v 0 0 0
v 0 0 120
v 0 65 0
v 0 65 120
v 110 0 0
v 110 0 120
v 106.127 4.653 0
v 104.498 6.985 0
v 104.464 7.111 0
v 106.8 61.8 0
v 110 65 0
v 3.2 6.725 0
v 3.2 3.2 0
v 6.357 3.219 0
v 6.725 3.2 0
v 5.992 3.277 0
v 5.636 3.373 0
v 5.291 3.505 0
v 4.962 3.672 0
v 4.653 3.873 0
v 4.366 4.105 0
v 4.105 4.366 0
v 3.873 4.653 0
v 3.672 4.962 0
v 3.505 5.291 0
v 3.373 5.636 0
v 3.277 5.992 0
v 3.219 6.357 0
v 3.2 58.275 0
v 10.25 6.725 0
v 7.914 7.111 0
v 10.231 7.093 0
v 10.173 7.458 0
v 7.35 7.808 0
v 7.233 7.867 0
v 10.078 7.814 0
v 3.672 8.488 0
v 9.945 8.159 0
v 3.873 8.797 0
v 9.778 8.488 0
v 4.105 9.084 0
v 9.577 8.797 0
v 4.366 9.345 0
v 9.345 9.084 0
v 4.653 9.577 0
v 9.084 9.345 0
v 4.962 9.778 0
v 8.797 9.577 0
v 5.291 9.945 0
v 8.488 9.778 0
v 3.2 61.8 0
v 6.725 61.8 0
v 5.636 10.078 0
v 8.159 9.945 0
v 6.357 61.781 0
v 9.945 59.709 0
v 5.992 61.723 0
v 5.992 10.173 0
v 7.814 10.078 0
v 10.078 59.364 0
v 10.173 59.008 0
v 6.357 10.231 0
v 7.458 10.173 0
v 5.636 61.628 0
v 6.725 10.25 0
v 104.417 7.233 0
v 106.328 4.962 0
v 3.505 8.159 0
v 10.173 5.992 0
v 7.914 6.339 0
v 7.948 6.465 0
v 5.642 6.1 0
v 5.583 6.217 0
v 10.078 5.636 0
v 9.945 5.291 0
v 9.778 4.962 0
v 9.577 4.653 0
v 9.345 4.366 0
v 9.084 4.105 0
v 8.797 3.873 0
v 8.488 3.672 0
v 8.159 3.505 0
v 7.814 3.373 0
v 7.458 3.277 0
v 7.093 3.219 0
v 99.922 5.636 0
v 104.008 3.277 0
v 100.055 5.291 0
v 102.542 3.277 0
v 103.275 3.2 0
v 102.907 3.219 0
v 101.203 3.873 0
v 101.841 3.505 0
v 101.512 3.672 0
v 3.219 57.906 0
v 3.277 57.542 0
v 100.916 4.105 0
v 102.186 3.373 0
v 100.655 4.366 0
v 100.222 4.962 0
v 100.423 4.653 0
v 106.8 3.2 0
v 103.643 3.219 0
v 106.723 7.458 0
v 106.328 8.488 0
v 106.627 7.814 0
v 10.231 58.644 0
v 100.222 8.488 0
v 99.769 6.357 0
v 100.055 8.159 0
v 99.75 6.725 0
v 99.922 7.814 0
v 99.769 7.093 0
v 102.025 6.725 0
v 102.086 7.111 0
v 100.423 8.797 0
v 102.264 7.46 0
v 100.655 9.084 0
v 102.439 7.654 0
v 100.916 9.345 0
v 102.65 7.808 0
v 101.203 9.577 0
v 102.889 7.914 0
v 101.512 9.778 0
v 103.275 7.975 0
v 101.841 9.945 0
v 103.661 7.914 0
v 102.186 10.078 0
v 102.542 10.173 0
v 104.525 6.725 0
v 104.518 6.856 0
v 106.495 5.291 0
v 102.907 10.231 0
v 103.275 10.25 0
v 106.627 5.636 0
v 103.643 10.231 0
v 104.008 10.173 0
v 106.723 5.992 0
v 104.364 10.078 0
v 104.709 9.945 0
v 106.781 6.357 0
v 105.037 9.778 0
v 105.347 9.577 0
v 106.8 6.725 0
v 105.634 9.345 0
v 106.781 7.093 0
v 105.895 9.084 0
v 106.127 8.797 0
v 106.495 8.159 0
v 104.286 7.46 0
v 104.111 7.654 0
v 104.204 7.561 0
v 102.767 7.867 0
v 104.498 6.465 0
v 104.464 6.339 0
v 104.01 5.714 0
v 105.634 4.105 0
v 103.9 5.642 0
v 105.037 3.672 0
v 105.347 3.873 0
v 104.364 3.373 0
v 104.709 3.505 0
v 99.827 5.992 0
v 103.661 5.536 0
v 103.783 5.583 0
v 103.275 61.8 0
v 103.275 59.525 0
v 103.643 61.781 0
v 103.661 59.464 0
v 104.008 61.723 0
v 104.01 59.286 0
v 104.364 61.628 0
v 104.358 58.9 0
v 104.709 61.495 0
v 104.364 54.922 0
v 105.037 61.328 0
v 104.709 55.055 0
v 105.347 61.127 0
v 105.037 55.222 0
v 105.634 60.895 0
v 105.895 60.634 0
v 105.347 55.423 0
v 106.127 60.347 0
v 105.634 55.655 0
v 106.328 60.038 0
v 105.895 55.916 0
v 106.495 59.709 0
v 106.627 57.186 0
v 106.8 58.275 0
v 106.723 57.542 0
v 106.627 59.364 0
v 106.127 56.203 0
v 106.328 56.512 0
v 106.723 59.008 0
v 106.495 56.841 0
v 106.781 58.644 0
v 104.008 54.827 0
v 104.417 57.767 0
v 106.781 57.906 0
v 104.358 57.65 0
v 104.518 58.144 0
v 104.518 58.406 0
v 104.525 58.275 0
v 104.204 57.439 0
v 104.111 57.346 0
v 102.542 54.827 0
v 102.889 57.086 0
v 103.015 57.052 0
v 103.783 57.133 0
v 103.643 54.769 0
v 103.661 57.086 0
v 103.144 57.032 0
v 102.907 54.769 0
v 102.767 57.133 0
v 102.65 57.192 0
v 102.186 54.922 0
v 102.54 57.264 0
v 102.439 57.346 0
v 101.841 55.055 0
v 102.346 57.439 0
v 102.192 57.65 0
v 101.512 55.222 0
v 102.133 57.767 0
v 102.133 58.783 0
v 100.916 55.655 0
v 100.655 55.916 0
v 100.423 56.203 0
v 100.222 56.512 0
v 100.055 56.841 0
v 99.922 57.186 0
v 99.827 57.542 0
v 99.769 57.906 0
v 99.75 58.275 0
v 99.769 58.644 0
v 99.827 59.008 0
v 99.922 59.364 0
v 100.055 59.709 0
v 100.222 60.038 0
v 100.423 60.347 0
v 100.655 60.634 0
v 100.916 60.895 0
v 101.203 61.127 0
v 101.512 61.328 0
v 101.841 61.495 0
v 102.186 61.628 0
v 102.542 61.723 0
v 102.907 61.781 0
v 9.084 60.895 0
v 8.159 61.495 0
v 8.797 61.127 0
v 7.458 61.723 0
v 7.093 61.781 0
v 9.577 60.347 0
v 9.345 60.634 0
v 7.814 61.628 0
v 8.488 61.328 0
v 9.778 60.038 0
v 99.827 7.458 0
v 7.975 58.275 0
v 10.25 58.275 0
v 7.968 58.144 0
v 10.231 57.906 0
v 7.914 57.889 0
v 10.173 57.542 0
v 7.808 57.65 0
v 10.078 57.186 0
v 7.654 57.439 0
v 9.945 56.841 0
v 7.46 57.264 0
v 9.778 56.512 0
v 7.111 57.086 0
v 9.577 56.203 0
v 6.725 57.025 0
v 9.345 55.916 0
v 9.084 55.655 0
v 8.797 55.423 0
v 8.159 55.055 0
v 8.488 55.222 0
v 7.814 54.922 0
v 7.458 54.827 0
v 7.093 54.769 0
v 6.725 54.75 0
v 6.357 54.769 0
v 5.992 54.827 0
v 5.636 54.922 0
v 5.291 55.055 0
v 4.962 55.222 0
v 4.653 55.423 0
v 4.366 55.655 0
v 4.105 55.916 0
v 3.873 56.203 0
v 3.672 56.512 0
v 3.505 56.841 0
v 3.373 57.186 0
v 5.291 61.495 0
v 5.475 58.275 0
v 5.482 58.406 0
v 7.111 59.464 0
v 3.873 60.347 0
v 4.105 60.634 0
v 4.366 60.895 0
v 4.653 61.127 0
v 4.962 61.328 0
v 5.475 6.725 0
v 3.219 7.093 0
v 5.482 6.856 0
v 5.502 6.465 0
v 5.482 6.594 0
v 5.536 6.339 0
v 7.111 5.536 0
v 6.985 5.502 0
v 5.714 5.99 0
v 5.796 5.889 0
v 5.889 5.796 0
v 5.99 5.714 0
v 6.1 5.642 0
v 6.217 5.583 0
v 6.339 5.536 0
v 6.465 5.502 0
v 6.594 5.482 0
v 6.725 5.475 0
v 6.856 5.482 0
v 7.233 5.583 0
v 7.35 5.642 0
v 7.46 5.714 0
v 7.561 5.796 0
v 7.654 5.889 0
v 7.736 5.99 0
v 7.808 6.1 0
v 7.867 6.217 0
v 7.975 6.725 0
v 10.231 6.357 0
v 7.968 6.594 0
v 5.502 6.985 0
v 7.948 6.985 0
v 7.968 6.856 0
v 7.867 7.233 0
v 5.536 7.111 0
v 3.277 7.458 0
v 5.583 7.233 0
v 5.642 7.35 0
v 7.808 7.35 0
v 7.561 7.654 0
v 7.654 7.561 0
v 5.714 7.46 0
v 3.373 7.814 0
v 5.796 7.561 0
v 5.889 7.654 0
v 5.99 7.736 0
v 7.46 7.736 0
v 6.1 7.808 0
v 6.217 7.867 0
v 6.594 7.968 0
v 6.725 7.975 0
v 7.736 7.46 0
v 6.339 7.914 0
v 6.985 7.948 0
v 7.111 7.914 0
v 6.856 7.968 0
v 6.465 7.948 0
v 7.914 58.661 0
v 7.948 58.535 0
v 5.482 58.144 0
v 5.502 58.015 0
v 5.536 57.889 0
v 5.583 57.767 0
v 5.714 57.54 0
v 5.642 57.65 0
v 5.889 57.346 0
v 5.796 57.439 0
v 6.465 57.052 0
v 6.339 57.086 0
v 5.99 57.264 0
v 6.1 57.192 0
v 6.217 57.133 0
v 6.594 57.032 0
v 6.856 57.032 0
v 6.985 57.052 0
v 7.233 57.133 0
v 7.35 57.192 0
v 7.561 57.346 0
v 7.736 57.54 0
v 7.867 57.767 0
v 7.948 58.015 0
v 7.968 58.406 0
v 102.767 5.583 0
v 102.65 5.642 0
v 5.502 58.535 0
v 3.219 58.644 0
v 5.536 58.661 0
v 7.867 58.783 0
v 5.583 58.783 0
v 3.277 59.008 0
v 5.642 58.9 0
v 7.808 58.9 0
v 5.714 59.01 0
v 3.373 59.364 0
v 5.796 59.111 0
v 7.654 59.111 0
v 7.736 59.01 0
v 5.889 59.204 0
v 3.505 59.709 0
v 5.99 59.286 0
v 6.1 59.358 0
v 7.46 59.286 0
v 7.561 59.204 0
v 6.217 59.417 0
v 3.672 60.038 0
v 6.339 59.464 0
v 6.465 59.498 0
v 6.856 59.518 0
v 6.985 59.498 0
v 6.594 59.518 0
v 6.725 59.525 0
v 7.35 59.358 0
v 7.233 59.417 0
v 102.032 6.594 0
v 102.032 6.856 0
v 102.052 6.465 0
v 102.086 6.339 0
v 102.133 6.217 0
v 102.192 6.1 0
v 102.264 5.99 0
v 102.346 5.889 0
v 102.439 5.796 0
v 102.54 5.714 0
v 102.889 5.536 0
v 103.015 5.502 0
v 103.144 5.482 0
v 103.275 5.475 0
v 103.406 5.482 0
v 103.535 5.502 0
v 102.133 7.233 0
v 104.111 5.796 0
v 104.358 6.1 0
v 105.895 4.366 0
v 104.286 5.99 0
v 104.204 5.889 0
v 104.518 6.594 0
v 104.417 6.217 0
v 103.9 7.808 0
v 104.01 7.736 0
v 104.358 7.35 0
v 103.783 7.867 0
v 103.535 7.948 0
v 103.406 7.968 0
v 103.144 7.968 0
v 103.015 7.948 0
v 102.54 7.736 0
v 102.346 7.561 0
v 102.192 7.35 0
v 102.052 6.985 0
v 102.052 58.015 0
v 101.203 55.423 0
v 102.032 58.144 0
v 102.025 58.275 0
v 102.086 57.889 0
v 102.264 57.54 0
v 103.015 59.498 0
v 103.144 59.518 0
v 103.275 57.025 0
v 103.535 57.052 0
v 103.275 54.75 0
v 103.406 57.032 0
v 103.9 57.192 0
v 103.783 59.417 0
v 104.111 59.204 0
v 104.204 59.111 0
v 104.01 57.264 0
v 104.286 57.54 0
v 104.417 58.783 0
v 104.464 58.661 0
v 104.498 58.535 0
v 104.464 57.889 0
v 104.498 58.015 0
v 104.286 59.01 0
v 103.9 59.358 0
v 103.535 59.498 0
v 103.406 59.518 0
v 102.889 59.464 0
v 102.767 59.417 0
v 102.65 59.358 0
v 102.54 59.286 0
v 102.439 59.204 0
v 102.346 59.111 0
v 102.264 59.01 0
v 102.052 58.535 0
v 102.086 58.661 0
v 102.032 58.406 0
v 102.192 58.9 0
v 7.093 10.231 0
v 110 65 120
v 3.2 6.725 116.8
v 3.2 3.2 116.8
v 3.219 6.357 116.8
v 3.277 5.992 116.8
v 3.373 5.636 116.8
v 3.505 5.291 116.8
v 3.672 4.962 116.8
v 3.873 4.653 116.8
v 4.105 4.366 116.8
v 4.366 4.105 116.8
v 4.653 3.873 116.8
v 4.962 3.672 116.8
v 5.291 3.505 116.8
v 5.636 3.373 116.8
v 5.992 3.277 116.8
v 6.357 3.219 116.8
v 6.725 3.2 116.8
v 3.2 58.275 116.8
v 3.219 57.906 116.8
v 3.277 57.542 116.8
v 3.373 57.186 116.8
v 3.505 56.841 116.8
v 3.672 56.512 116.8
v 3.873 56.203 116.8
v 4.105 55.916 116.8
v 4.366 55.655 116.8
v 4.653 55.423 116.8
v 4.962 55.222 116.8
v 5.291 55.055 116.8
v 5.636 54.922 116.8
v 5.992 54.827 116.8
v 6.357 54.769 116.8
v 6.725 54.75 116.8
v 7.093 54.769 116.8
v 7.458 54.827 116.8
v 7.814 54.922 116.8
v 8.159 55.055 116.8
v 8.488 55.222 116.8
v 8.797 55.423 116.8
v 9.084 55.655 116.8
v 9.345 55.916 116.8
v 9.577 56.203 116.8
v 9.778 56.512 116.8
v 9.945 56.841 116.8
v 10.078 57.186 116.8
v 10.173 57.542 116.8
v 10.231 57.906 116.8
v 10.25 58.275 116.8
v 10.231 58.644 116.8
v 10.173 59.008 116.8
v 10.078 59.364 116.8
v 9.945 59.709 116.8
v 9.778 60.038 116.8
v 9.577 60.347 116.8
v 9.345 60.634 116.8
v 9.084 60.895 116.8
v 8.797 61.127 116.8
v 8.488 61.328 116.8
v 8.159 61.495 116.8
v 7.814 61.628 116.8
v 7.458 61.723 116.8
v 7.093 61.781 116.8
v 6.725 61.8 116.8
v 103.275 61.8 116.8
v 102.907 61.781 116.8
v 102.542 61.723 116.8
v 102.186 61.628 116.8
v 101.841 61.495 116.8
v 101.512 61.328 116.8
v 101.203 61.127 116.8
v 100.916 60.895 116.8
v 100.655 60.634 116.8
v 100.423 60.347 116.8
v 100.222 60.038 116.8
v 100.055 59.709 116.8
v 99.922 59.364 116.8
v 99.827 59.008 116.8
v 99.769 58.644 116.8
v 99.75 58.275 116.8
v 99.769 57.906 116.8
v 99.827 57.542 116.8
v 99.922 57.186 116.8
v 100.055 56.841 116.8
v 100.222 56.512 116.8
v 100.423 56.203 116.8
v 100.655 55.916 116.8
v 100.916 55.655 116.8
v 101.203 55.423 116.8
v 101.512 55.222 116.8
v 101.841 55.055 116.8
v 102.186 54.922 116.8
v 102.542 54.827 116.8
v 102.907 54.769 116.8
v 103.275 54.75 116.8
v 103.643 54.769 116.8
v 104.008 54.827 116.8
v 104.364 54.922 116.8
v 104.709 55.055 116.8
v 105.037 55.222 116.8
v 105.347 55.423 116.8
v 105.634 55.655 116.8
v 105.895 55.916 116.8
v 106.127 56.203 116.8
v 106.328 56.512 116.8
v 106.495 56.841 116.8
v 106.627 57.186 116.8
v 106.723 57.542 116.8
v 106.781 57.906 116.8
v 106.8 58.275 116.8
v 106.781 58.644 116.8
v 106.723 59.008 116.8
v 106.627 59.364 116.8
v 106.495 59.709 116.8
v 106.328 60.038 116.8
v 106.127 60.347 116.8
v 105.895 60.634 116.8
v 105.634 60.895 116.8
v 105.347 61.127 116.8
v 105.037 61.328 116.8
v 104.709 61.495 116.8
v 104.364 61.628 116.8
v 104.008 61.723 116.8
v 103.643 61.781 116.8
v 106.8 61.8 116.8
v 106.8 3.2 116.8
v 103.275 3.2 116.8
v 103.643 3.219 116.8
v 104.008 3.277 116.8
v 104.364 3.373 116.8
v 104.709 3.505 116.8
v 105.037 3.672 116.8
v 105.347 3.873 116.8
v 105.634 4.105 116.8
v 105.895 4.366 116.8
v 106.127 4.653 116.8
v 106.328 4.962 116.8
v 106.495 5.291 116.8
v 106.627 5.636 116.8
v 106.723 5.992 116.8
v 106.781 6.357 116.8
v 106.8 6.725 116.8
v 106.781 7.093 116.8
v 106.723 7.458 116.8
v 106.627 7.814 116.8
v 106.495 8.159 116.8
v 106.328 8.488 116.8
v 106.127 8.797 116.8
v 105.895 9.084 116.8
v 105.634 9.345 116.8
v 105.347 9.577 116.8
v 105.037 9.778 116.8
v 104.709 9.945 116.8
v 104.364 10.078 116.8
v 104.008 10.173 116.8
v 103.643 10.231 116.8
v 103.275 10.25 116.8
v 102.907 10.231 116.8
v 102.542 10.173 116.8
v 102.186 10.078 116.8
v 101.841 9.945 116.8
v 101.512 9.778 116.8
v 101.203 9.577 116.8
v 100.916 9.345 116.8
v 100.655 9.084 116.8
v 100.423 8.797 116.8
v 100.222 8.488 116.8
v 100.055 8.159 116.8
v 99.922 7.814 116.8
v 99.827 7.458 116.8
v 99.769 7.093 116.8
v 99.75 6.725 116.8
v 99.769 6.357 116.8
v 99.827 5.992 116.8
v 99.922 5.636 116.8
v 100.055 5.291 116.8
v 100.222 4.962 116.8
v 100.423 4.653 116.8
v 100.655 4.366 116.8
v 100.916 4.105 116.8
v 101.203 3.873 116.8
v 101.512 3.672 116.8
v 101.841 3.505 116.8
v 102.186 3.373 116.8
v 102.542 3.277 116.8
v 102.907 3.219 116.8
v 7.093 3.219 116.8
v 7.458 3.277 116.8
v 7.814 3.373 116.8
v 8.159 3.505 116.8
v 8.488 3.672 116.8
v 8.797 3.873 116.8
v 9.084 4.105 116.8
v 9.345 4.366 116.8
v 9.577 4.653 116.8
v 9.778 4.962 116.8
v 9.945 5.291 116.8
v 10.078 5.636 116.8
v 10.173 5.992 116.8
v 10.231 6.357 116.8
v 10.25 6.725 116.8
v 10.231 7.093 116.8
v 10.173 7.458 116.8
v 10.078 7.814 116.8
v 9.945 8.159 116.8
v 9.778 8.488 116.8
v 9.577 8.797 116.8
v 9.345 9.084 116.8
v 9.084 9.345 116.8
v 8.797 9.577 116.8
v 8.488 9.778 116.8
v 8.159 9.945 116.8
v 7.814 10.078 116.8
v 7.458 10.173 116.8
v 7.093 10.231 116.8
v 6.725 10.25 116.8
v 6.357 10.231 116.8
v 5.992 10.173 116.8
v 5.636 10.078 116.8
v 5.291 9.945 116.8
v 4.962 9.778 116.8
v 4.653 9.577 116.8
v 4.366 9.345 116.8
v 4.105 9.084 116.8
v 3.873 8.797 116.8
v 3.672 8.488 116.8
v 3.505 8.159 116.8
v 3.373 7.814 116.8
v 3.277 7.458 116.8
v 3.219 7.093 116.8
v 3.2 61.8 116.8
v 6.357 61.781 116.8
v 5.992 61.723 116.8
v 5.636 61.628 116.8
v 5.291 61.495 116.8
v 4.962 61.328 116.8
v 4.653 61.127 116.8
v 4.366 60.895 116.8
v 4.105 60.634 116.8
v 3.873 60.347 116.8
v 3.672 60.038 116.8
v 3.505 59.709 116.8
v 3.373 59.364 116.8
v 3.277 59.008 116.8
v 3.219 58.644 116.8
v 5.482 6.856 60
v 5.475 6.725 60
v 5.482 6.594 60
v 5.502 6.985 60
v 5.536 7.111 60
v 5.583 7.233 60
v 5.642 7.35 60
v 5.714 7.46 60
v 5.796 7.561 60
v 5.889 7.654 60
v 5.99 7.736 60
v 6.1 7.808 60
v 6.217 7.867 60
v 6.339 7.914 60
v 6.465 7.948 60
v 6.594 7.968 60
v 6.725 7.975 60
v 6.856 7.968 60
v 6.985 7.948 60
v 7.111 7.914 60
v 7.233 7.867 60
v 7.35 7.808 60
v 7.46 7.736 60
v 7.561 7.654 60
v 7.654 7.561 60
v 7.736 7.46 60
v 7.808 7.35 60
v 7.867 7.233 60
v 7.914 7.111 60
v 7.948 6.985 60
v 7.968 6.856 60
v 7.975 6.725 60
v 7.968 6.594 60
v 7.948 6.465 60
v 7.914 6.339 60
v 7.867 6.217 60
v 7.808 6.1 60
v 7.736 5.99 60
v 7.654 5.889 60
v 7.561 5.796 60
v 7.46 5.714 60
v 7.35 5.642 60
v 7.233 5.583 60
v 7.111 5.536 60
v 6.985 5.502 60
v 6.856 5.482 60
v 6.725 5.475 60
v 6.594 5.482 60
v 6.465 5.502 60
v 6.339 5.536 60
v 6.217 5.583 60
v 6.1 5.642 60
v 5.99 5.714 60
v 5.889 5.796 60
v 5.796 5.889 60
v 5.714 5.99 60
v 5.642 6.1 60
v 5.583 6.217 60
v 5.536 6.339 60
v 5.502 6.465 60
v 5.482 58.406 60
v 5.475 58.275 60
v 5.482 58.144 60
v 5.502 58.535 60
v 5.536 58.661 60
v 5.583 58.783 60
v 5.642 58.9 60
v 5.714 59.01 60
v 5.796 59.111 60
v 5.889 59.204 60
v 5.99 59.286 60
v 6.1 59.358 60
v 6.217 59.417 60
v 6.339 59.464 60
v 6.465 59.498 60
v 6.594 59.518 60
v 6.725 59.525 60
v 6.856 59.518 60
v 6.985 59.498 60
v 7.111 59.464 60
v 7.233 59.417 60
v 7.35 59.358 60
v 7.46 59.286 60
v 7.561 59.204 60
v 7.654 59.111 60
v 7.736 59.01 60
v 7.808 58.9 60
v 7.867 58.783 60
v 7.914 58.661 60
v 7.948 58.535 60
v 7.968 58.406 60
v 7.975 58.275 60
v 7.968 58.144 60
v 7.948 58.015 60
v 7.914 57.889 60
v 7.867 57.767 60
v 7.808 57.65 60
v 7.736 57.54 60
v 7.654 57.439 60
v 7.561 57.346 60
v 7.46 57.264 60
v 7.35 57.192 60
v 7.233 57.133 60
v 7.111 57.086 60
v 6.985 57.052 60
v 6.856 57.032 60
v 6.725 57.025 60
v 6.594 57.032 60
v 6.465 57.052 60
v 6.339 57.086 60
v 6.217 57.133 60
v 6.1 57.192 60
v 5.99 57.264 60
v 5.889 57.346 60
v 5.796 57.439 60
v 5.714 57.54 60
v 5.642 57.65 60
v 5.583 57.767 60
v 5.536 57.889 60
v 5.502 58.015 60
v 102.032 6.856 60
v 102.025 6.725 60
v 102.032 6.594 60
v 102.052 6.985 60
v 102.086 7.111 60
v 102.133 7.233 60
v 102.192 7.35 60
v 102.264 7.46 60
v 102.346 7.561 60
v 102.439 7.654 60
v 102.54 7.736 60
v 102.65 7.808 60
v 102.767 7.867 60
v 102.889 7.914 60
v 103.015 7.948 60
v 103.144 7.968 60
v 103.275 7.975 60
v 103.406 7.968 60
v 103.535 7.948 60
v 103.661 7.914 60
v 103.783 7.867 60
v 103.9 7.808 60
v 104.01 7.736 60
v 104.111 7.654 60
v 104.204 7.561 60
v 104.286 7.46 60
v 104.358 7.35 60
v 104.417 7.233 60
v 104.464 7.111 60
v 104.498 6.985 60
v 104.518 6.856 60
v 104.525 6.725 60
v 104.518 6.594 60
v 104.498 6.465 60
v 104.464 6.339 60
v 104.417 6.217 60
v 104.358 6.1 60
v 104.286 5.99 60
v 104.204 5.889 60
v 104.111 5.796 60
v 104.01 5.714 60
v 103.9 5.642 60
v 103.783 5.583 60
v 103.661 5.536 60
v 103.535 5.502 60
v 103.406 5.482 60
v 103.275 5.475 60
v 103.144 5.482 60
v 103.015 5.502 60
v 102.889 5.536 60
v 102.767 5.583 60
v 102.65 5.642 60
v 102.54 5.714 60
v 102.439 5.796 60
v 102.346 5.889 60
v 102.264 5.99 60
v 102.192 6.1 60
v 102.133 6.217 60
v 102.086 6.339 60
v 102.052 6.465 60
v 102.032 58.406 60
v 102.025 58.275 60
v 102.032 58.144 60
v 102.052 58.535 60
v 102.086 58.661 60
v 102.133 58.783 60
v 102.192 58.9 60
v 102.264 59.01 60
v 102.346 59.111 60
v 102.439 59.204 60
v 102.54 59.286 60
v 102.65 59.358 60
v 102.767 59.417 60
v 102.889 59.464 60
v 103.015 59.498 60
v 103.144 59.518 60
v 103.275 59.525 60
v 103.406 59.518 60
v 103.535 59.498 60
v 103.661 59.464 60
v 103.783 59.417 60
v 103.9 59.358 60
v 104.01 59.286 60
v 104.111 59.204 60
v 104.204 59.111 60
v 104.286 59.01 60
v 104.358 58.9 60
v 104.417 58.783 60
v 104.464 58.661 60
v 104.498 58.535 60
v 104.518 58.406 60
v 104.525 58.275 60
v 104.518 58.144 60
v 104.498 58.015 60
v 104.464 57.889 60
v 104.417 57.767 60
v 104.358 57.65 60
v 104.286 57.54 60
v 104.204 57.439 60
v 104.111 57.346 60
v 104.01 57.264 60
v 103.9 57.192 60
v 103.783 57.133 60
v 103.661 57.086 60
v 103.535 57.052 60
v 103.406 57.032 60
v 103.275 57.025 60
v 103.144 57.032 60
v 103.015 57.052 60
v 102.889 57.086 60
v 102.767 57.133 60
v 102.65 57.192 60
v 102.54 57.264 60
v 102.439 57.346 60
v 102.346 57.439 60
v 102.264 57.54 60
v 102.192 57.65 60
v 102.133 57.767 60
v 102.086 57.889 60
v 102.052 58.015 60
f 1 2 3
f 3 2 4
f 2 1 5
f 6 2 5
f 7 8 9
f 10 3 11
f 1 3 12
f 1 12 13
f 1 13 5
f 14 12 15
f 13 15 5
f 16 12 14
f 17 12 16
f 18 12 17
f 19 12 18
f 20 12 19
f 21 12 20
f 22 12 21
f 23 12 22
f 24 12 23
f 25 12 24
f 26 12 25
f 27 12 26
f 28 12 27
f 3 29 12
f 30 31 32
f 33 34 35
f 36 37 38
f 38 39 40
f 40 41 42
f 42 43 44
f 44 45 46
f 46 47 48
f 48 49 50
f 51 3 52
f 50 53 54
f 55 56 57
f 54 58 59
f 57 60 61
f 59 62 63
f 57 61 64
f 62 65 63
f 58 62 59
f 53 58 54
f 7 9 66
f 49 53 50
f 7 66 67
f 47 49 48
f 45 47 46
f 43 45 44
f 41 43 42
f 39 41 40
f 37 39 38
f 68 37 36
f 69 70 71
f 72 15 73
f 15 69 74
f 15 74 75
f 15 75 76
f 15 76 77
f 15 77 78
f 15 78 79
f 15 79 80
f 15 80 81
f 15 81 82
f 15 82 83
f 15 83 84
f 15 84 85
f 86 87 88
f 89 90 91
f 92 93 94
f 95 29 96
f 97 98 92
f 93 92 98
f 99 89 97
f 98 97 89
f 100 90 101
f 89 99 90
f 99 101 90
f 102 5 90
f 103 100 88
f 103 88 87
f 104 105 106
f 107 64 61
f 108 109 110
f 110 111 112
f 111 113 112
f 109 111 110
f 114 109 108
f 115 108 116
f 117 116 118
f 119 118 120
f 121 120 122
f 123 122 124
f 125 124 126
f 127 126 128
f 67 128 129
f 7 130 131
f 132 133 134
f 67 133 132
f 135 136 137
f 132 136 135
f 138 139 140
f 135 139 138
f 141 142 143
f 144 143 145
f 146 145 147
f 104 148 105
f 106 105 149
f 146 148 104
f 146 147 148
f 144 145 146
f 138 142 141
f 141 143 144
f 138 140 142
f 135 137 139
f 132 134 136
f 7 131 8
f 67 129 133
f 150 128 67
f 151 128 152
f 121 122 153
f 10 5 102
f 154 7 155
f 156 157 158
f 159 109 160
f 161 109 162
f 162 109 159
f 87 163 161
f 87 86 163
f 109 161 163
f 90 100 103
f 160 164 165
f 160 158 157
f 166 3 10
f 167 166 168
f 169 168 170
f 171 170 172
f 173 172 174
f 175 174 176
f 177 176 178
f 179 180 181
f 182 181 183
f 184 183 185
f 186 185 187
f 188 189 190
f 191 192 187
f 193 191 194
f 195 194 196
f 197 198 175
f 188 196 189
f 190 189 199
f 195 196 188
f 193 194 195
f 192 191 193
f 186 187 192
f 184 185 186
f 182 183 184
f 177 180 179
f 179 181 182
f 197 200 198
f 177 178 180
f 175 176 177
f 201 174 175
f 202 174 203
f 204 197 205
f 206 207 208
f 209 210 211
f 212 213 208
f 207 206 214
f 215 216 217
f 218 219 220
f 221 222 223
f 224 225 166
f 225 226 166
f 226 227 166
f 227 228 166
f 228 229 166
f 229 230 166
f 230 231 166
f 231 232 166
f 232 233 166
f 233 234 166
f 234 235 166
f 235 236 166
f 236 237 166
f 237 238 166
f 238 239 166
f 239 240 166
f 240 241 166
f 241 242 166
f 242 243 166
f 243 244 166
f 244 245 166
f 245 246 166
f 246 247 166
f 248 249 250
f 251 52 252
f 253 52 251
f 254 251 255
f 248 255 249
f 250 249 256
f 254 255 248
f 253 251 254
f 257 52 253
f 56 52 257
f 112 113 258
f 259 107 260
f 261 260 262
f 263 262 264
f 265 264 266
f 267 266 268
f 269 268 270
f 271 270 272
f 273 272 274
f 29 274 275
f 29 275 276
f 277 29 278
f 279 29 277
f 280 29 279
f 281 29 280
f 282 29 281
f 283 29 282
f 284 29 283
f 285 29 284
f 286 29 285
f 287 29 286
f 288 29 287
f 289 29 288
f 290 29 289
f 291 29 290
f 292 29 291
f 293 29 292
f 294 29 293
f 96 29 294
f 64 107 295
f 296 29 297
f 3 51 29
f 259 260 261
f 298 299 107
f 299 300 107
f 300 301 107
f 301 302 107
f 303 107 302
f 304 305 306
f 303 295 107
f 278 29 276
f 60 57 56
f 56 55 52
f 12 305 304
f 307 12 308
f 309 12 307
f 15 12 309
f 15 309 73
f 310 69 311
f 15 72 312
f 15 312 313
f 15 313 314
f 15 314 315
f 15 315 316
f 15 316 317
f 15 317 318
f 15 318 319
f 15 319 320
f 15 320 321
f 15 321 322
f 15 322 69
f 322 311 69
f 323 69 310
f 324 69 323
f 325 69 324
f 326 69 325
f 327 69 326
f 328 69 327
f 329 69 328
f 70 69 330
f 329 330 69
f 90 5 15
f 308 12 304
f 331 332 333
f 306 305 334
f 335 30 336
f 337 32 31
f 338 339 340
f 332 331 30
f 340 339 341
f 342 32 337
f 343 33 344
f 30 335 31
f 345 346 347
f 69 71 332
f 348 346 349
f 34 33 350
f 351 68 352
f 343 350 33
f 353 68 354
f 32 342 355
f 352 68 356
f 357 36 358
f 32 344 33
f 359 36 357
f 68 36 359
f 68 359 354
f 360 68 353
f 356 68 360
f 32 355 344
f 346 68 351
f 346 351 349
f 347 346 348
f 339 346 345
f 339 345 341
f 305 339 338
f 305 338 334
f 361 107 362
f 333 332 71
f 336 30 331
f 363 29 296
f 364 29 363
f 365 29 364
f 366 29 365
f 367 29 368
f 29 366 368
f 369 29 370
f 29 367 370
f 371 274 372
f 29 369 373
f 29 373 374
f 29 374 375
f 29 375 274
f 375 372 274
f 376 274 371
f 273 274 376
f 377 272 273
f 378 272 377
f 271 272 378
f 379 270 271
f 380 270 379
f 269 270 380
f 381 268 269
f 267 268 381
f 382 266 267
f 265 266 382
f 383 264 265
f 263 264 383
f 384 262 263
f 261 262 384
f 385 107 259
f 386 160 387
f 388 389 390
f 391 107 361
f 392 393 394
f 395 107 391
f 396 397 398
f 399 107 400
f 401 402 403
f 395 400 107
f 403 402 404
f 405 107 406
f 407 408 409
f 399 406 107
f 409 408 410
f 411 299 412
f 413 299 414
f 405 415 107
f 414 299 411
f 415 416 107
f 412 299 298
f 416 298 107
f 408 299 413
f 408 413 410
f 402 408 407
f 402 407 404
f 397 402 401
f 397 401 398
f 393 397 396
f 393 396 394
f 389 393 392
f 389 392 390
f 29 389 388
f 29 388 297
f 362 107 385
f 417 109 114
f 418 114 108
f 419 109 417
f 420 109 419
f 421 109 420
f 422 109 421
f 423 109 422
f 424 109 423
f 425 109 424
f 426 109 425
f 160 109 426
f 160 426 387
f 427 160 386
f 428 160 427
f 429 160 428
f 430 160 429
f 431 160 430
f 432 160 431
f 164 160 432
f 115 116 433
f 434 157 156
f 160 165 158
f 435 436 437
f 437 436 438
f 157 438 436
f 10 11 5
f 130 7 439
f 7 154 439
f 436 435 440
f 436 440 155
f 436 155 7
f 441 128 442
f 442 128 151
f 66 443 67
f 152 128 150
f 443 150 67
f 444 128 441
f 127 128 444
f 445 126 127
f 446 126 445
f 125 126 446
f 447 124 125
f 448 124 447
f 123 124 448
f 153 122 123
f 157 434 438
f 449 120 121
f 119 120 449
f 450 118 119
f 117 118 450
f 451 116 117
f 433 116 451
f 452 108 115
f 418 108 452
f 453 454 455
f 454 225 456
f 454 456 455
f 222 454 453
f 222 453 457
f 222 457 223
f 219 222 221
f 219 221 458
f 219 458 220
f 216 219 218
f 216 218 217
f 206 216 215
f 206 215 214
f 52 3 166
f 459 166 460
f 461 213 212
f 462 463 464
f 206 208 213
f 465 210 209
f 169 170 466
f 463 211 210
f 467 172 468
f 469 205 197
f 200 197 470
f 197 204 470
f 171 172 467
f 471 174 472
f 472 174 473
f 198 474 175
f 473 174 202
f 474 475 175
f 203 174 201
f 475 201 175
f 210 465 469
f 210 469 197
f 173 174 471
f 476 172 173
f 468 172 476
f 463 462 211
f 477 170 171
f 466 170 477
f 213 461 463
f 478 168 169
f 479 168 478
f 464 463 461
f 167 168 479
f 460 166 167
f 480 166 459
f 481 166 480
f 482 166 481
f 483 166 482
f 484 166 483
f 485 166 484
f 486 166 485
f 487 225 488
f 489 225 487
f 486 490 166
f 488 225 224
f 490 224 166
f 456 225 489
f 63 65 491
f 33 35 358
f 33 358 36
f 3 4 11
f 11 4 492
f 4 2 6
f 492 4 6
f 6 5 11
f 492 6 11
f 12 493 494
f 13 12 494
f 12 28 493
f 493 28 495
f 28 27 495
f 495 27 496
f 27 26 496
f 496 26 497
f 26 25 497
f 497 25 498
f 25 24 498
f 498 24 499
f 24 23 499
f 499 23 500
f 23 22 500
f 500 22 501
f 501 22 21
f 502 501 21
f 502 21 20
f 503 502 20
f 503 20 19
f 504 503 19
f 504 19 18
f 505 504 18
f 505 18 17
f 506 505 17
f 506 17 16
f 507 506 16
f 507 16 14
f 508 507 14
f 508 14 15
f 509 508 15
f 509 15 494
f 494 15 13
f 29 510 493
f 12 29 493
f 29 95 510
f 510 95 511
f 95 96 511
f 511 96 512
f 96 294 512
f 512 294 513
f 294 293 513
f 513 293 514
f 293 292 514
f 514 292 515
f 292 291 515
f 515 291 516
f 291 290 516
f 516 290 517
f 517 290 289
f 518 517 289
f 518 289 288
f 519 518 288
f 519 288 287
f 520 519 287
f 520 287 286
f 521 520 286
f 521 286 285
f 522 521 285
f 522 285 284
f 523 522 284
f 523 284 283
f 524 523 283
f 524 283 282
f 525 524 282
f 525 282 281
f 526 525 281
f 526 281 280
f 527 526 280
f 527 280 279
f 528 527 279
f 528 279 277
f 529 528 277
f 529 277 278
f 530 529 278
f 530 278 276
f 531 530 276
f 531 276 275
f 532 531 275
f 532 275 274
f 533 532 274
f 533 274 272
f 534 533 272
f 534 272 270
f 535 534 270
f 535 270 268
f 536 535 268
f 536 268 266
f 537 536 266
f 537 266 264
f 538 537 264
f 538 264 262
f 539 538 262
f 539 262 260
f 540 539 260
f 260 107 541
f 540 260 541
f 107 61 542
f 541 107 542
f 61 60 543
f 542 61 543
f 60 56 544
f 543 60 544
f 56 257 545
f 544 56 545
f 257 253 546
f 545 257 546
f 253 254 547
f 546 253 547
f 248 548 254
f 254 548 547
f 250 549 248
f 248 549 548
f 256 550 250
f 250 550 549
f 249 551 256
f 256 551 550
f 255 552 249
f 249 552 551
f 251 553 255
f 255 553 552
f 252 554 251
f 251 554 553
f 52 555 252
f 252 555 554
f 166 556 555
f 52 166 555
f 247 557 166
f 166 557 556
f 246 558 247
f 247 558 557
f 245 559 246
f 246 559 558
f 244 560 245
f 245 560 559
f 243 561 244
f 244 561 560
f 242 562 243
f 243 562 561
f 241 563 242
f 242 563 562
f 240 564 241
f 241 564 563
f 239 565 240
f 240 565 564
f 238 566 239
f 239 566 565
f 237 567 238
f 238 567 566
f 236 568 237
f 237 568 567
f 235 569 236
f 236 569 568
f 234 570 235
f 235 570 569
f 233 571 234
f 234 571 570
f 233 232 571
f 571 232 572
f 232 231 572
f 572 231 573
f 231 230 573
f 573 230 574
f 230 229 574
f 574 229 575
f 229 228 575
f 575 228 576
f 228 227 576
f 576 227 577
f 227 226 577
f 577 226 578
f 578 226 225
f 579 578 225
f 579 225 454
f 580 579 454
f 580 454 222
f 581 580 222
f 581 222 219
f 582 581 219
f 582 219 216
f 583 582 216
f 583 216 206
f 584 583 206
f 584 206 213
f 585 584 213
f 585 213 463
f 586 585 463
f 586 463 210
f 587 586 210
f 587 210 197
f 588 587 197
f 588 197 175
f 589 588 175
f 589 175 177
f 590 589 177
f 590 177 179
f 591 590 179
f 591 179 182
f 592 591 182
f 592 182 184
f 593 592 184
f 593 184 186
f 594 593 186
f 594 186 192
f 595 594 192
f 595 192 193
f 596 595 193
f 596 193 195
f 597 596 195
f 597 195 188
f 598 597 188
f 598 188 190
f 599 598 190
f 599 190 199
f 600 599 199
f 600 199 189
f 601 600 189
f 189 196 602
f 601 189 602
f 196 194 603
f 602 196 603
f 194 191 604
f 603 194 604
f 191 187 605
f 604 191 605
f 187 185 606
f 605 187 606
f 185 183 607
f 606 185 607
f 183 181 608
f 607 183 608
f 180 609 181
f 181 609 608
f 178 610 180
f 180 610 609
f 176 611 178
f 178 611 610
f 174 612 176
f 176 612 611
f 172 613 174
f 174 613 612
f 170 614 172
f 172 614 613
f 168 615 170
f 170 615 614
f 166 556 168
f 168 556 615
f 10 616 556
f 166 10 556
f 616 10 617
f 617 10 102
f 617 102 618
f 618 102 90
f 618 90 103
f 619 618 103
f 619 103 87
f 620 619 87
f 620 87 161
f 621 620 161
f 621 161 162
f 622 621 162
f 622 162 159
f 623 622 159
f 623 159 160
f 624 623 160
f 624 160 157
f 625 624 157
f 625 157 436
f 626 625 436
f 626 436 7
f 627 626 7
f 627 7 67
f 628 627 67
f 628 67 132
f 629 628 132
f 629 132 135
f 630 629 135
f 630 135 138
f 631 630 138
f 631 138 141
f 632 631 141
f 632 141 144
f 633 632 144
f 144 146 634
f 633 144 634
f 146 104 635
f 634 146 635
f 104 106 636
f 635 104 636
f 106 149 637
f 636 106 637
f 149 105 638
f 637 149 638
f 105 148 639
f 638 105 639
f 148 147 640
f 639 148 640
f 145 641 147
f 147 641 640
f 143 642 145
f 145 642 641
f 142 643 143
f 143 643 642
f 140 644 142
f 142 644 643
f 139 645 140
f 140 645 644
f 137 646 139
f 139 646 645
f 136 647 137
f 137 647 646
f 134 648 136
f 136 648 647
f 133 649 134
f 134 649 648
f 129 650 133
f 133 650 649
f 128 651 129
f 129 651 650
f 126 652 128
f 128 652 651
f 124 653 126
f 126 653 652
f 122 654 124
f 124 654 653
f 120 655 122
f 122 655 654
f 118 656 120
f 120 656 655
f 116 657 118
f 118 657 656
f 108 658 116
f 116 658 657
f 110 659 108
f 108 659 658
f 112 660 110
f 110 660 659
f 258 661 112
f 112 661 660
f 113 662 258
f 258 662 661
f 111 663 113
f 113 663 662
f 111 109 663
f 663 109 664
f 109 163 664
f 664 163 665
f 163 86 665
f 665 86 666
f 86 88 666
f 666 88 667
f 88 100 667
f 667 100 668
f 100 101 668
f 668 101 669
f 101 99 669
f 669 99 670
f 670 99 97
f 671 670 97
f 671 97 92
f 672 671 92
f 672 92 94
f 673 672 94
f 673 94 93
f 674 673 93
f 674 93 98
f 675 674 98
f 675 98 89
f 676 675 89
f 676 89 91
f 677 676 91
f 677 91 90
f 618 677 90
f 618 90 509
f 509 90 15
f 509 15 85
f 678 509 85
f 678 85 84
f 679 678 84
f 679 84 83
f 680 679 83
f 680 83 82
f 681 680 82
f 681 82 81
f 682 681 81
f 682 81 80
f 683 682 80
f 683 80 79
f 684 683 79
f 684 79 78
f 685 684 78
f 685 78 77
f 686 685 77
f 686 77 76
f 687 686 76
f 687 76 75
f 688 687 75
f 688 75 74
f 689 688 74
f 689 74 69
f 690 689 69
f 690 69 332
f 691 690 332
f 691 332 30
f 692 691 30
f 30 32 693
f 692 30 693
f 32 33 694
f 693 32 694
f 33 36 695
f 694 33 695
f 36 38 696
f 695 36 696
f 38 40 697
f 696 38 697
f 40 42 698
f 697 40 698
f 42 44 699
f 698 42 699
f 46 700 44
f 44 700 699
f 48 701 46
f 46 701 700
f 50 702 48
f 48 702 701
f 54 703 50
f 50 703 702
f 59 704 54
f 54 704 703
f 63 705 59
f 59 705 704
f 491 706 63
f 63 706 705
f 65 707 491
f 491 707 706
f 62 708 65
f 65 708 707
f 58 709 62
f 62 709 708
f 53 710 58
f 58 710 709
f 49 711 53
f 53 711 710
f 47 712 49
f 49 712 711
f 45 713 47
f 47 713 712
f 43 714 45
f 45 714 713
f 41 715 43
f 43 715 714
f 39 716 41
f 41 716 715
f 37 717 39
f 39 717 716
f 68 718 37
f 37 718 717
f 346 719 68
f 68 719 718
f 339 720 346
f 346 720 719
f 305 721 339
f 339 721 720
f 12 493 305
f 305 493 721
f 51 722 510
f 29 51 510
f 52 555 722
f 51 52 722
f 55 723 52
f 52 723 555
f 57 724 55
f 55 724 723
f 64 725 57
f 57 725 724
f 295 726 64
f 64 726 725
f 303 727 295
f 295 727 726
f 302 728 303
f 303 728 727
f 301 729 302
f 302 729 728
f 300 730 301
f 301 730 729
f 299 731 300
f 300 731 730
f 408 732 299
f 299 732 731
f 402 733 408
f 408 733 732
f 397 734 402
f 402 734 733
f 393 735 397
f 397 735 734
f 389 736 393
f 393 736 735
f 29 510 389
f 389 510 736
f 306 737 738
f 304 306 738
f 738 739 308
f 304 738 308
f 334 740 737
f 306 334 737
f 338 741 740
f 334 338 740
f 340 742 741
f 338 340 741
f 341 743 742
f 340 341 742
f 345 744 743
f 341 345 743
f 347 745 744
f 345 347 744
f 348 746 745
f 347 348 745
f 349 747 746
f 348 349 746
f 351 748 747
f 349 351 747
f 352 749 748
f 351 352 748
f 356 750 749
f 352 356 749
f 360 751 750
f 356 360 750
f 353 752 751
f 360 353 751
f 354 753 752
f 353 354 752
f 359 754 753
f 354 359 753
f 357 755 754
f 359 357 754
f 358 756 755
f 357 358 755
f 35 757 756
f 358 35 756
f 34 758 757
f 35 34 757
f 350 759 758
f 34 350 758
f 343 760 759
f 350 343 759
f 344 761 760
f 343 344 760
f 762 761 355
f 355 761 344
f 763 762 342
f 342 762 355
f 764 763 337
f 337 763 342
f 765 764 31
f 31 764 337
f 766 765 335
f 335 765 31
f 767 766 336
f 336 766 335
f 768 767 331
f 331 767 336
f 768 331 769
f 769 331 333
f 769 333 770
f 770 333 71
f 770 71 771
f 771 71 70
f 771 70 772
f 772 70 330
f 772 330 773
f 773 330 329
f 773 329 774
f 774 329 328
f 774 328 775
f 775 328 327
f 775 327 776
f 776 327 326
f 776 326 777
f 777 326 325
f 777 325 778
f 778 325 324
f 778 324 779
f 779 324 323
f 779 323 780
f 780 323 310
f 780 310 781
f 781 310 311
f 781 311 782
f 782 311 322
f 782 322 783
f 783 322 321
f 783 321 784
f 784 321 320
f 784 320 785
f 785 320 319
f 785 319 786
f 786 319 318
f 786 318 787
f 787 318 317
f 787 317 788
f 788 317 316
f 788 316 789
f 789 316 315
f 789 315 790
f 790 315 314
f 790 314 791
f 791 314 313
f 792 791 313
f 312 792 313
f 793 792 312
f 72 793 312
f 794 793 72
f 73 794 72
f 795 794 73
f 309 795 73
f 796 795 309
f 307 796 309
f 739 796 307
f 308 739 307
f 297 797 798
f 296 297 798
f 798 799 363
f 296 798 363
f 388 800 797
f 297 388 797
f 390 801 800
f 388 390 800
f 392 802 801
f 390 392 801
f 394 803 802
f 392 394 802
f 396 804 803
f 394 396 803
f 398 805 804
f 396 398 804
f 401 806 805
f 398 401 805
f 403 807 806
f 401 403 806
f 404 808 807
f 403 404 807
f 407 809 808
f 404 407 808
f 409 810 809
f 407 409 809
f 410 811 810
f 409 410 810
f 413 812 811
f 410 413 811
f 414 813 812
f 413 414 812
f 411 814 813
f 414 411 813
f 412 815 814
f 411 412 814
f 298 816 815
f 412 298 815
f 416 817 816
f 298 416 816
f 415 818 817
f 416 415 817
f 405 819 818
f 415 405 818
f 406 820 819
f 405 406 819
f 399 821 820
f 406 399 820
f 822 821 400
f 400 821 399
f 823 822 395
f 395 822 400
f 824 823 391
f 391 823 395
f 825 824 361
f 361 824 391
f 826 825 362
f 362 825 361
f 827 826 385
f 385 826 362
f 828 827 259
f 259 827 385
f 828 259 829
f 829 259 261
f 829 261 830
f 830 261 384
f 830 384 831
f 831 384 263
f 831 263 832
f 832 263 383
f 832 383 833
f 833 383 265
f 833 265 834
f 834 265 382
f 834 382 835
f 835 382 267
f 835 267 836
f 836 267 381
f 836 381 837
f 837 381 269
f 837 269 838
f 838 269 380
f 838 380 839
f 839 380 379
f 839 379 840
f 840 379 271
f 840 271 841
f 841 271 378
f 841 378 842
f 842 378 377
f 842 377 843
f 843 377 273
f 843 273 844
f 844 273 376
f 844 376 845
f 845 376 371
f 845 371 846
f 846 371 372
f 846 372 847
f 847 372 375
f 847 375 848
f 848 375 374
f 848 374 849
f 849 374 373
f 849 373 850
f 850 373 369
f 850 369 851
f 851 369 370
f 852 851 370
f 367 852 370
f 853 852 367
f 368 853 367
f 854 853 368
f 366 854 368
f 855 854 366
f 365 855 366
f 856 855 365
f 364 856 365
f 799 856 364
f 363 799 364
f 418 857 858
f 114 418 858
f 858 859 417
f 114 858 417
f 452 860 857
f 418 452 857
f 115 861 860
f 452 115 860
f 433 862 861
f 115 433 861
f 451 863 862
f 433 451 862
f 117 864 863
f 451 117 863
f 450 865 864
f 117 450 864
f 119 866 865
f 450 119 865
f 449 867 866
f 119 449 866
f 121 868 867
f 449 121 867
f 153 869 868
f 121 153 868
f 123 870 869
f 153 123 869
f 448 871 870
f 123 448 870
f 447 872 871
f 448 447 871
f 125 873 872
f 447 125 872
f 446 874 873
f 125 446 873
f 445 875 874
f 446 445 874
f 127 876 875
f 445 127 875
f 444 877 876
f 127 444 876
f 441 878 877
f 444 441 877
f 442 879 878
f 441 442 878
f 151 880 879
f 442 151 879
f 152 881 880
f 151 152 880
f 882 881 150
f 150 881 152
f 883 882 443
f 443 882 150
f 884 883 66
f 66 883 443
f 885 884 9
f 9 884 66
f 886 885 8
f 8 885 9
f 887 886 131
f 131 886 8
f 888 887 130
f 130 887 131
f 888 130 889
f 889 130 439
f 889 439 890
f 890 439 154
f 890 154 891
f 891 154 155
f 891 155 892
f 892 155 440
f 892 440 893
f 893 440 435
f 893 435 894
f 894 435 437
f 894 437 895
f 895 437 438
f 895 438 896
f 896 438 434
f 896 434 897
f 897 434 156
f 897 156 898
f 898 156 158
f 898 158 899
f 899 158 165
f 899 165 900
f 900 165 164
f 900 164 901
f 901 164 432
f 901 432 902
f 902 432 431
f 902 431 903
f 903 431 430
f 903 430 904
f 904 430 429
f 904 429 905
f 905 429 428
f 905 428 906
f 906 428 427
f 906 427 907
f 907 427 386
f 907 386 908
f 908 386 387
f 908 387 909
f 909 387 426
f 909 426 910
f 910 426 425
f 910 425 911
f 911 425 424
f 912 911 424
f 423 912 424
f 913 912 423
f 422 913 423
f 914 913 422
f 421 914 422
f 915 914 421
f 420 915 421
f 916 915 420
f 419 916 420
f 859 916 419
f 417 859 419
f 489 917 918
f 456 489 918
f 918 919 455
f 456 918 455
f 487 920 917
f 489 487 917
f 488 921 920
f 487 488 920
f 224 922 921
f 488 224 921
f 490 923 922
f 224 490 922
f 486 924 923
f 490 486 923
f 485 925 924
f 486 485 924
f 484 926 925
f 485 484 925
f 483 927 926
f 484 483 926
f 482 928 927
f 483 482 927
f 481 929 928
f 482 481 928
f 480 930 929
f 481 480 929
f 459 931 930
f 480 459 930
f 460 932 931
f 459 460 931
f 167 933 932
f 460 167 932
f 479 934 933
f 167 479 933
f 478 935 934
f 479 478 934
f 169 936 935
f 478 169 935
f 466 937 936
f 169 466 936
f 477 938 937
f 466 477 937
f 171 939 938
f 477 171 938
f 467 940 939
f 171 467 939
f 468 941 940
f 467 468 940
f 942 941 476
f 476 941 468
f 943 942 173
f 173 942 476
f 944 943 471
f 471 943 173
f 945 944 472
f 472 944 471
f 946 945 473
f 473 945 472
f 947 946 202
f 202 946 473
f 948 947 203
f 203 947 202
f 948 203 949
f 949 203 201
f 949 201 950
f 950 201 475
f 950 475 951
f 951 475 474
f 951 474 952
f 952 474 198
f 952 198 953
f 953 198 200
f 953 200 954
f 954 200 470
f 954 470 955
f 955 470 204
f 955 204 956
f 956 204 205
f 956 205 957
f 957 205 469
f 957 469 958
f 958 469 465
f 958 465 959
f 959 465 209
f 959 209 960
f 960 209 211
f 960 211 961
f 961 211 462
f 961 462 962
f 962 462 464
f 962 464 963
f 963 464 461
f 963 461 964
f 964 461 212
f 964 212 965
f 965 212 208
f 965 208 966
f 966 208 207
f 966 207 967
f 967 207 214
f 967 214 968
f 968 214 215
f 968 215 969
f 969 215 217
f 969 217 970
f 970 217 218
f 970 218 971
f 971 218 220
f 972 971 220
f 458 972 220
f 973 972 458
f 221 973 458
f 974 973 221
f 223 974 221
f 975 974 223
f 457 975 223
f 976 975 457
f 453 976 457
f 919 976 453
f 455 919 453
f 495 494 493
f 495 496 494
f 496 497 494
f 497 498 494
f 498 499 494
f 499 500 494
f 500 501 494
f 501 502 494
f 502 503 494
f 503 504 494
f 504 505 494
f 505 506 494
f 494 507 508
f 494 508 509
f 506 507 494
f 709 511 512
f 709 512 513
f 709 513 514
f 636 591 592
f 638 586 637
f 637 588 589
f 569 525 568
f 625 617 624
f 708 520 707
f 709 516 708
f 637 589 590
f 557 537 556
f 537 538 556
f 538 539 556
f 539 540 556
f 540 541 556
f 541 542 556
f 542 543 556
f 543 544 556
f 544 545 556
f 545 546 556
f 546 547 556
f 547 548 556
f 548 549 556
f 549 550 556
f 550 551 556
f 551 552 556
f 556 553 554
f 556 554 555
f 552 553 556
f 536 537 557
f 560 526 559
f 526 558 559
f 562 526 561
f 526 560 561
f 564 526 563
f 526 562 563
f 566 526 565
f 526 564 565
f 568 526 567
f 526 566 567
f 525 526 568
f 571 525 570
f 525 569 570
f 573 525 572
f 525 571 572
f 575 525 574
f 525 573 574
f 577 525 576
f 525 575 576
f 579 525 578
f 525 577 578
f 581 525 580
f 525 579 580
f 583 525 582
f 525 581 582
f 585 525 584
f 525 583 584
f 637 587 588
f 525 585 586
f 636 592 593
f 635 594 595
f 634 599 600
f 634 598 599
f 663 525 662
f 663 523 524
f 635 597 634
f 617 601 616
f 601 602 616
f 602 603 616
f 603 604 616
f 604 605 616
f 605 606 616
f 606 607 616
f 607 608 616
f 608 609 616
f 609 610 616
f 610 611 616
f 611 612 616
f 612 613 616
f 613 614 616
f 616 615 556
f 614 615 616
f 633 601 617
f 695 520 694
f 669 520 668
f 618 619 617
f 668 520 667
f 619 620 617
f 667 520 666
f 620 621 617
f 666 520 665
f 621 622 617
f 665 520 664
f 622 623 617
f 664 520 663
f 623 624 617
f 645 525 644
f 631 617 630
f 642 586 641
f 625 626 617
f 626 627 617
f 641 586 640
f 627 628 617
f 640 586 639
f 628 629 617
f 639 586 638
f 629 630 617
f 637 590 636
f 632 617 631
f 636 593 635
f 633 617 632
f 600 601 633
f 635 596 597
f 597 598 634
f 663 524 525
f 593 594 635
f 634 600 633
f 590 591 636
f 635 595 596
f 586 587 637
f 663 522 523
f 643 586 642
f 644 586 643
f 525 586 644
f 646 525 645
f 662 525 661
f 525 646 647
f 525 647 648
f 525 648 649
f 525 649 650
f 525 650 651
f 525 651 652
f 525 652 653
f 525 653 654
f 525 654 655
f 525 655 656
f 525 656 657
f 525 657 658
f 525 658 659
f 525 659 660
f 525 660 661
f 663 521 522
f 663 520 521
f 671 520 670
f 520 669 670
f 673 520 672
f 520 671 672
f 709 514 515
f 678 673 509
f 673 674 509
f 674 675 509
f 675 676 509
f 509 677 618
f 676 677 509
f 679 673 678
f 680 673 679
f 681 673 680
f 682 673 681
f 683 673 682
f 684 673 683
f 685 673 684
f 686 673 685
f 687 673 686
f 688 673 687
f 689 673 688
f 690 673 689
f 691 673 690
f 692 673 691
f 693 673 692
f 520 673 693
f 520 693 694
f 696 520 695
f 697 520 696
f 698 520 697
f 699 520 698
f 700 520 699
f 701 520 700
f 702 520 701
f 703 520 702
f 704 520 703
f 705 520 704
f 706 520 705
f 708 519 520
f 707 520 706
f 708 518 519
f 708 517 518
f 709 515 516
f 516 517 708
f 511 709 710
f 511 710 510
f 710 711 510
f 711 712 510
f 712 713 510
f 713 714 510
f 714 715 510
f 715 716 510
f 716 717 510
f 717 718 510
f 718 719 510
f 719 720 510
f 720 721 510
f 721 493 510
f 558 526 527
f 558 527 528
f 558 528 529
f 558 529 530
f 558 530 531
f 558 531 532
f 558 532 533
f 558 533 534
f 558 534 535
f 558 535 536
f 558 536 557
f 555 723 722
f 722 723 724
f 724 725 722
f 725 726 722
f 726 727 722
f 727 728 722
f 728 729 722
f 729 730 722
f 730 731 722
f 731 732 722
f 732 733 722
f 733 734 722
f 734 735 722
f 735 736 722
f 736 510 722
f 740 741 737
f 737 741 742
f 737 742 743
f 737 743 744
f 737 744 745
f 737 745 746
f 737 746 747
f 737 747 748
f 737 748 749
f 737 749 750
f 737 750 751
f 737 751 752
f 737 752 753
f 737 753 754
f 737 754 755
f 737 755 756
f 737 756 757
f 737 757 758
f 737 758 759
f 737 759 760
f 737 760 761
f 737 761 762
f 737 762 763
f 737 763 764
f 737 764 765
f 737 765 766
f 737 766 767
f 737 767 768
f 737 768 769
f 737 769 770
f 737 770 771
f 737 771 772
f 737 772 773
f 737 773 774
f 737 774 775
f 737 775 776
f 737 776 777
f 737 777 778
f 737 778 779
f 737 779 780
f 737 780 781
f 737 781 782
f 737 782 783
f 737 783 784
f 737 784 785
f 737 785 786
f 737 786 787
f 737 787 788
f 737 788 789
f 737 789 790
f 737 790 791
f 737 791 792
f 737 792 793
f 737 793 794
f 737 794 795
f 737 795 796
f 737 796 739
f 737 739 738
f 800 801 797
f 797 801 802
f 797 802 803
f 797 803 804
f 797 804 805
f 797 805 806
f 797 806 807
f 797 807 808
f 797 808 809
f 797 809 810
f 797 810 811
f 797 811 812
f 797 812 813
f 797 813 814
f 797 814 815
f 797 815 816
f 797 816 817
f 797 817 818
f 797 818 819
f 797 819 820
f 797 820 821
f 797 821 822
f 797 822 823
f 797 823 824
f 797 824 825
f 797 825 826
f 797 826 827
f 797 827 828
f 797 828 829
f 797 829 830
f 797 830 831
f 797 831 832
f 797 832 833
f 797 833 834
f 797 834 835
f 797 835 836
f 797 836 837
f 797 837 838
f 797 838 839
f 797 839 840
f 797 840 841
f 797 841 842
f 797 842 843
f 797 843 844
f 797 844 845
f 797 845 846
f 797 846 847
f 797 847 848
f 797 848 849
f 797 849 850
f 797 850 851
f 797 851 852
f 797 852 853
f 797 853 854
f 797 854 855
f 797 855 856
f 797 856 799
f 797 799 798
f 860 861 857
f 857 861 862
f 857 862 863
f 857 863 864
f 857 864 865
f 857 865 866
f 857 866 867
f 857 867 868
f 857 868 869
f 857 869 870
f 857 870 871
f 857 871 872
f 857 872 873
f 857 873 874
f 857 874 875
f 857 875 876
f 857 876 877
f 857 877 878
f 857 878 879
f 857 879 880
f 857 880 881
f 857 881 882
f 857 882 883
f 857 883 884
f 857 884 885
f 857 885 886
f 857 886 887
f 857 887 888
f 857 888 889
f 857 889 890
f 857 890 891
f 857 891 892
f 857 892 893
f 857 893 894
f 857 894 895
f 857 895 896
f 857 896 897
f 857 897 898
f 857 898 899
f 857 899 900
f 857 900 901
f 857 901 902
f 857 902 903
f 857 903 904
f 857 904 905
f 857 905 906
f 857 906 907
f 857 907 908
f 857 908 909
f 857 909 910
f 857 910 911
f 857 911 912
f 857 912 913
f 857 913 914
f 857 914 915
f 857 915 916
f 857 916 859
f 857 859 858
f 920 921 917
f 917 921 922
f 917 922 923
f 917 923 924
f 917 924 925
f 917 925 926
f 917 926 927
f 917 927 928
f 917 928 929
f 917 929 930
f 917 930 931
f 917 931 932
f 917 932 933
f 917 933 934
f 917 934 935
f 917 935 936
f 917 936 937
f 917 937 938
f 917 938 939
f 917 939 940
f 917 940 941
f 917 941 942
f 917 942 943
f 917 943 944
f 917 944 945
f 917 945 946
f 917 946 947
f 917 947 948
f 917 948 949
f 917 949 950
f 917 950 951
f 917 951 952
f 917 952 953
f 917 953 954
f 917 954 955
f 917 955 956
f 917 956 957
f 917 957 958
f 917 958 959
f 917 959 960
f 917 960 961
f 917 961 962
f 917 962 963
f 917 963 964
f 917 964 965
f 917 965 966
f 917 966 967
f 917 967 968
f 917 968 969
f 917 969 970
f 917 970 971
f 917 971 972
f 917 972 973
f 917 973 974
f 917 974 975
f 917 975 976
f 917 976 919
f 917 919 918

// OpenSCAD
l = 110;
w = 65;
h = 120;
screw_r = 7.05/2;
screw_r_in=2.5/2;
t = 3.2;
$fn=60;

difference(){
	cube([l,w,h]);
	translate([t,t,0])
	cube([l-2*t,w-2*t,h-t]);
}

for(x = [t+screw_r,l-t-screw_r]){
	for(y = [t+screw_r,w-t-screw_r]){
	translate([x,y,0])
	difference(){
		cylinder(h=h-t,r=screw_r);
		cylinder(h=h/2,r=screw_r_in);

		}
	}
}
